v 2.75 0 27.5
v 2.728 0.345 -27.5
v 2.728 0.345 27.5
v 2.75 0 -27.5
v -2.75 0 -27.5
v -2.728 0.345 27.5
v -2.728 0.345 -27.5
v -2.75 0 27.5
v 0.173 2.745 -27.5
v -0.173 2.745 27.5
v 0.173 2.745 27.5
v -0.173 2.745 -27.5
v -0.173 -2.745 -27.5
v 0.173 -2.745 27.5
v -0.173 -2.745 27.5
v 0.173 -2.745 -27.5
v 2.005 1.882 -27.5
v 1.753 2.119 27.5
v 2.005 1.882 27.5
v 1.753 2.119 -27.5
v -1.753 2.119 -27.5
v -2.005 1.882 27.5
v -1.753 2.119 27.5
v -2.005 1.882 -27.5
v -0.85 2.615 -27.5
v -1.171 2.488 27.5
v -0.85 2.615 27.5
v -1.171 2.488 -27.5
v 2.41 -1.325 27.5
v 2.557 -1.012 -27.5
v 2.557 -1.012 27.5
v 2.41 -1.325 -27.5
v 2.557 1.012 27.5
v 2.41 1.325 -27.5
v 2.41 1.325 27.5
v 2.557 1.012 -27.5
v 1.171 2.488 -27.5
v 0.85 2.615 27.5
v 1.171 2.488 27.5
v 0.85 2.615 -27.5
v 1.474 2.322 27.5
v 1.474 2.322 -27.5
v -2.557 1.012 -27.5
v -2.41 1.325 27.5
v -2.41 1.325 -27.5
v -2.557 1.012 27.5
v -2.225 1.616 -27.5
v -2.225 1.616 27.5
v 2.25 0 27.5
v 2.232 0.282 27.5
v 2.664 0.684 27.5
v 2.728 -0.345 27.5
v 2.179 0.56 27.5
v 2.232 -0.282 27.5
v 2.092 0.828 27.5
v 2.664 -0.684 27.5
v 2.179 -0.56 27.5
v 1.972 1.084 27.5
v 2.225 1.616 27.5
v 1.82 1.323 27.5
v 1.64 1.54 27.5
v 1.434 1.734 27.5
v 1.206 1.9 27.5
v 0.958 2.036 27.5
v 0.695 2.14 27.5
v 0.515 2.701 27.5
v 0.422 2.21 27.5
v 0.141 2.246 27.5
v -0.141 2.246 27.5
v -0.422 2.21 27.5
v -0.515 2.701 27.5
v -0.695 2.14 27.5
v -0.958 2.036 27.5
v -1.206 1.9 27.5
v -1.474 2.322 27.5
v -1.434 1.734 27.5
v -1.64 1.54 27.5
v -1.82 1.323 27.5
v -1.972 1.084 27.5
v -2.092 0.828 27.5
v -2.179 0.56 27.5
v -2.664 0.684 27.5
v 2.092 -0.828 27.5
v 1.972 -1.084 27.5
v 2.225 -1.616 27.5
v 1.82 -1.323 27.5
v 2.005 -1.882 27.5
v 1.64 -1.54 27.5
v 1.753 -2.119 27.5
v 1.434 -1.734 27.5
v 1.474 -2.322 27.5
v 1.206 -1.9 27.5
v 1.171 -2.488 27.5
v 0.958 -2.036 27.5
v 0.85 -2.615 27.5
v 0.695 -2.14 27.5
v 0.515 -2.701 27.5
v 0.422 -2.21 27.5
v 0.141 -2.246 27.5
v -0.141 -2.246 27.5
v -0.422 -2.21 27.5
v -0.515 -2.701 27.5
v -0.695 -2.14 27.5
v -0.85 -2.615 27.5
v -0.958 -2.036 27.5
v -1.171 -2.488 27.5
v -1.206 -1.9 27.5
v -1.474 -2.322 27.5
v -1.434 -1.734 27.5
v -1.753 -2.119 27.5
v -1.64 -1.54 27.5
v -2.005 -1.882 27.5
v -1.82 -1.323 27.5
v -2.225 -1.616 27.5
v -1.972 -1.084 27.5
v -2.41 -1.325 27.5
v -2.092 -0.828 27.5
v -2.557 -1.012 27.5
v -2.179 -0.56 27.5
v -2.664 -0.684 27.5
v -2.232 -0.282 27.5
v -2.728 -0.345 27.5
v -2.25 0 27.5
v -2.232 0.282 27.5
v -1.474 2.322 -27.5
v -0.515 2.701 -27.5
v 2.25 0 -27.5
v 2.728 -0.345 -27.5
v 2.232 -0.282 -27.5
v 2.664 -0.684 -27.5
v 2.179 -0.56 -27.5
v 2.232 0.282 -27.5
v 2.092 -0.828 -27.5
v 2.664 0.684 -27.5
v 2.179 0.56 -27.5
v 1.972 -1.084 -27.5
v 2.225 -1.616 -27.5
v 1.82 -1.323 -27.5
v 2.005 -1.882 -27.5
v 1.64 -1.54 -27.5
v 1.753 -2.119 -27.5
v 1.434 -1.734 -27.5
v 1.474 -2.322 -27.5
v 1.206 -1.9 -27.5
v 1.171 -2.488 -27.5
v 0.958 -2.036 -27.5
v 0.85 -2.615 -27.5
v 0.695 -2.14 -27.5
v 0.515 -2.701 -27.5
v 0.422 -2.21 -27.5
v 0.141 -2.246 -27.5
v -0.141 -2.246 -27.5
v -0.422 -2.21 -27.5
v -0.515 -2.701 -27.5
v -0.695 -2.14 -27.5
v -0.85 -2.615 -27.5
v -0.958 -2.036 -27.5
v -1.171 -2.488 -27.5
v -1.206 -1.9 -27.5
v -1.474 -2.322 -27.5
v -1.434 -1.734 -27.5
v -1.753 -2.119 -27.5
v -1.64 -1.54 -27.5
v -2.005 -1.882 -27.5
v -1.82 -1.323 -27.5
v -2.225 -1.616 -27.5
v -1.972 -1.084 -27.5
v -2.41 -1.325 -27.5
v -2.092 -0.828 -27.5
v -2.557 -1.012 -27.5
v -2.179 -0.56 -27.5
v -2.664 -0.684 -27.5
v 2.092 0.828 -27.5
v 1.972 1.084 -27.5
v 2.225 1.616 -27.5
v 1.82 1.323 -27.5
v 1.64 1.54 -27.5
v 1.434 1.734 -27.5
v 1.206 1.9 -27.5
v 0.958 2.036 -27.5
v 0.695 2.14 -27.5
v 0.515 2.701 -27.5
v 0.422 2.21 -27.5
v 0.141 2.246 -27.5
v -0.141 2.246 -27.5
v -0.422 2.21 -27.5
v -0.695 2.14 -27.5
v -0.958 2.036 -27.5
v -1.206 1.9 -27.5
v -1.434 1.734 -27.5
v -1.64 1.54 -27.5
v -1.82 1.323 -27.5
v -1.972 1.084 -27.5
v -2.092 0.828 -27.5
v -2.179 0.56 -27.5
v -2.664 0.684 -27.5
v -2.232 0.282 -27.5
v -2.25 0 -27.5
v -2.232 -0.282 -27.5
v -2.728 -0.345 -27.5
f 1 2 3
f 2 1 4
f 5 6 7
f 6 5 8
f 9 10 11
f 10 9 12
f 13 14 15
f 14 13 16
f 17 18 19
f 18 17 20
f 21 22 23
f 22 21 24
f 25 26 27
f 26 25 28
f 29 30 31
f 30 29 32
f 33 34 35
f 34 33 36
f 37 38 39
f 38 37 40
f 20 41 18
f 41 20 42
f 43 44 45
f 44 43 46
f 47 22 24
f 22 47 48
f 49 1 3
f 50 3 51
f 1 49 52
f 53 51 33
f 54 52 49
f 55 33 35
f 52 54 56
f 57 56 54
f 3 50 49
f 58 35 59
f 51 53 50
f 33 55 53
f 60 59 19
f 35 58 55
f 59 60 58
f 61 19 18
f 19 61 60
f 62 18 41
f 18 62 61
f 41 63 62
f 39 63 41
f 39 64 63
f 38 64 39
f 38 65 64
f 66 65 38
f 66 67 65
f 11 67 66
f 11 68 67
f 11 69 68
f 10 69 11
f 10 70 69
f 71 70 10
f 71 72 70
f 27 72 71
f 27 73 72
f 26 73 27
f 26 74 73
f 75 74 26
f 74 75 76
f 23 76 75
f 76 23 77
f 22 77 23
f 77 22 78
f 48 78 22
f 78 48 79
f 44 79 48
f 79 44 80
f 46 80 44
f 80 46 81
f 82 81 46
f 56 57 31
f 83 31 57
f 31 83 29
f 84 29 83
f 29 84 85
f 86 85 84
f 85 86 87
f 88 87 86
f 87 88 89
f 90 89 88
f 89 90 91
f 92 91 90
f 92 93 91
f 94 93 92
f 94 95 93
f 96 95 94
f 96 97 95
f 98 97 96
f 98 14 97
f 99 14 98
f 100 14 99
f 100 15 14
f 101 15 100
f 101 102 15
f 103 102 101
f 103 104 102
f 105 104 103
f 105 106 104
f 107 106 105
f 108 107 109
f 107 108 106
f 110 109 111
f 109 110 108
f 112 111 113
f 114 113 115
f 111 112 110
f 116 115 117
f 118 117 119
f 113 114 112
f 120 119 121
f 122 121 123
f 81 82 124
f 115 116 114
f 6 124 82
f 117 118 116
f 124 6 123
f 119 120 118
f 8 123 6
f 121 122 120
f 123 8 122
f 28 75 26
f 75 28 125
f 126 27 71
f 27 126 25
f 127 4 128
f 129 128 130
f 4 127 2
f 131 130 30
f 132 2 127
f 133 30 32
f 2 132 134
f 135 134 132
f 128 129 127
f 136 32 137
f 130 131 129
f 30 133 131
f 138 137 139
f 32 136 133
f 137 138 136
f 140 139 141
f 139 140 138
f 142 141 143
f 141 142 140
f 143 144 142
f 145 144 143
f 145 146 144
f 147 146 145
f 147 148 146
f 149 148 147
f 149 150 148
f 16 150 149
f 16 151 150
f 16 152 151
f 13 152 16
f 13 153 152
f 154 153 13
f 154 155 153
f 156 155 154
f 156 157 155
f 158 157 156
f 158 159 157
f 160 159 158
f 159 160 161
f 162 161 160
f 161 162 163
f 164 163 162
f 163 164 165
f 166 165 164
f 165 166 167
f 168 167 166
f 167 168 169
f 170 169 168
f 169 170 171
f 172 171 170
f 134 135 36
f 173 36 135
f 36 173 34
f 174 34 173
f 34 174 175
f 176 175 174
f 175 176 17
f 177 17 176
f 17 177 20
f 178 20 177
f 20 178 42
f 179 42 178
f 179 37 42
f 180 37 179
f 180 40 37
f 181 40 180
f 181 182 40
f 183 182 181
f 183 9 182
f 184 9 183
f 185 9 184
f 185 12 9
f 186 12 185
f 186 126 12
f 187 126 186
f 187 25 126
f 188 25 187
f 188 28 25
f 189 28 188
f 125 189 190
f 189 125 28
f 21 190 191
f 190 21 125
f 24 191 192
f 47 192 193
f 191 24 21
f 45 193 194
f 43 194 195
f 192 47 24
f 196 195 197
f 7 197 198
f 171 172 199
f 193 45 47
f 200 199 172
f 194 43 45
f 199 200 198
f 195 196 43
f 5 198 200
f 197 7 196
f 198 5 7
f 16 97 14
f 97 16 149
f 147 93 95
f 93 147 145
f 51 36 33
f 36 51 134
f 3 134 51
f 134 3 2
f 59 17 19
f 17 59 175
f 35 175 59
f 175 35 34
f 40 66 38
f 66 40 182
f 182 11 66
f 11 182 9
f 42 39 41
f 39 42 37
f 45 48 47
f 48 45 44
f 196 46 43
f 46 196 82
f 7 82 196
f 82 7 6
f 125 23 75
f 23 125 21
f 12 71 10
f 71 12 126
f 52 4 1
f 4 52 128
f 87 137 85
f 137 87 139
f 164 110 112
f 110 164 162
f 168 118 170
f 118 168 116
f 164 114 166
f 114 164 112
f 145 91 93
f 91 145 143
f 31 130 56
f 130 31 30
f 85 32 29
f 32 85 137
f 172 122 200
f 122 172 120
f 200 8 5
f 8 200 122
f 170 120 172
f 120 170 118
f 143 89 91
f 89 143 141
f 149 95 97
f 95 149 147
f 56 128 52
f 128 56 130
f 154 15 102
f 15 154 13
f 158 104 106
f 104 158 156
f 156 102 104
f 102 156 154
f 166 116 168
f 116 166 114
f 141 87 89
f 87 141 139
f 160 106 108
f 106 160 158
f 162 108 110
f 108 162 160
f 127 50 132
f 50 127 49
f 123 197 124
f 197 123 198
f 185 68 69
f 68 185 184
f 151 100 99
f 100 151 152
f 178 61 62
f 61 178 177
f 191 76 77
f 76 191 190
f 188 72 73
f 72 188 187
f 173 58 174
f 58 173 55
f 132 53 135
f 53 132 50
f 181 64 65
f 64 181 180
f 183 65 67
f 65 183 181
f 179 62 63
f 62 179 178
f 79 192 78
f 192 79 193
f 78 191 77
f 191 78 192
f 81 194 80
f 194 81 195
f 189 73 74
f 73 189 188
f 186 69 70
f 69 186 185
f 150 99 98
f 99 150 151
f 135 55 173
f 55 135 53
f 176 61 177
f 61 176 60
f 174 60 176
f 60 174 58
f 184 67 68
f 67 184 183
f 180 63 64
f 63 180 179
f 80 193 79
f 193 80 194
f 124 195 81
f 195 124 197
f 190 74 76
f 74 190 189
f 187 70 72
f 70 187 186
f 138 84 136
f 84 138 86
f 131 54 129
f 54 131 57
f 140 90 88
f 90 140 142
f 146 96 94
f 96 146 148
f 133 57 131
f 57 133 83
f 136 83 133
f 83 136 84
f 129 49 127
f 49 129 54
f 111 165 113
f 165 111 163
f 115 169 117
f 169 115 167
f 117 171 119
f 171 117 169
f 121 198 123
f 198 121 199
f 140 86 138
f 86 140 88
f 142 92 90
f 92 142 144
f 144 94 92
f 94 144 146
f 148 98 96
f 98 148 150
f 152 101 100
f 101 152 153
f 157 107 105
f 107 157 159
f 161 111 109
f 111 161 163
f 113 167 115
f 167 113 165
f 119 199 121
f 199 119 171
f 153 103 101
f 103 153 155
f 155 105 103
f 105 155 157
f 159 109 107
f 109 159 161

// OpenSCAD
$fn = 50;


difference() {
	union() {
		translate(v = [0, 0, -27.5000000000]) {
			cylinder(h = 55, r = 2.7500000000);
		}
	}
	union() {
		translate(v = [0, 0, -100.0000000000]) {
			cylinder(h = 200, r = 2.2500000000);
		}
	}
}
